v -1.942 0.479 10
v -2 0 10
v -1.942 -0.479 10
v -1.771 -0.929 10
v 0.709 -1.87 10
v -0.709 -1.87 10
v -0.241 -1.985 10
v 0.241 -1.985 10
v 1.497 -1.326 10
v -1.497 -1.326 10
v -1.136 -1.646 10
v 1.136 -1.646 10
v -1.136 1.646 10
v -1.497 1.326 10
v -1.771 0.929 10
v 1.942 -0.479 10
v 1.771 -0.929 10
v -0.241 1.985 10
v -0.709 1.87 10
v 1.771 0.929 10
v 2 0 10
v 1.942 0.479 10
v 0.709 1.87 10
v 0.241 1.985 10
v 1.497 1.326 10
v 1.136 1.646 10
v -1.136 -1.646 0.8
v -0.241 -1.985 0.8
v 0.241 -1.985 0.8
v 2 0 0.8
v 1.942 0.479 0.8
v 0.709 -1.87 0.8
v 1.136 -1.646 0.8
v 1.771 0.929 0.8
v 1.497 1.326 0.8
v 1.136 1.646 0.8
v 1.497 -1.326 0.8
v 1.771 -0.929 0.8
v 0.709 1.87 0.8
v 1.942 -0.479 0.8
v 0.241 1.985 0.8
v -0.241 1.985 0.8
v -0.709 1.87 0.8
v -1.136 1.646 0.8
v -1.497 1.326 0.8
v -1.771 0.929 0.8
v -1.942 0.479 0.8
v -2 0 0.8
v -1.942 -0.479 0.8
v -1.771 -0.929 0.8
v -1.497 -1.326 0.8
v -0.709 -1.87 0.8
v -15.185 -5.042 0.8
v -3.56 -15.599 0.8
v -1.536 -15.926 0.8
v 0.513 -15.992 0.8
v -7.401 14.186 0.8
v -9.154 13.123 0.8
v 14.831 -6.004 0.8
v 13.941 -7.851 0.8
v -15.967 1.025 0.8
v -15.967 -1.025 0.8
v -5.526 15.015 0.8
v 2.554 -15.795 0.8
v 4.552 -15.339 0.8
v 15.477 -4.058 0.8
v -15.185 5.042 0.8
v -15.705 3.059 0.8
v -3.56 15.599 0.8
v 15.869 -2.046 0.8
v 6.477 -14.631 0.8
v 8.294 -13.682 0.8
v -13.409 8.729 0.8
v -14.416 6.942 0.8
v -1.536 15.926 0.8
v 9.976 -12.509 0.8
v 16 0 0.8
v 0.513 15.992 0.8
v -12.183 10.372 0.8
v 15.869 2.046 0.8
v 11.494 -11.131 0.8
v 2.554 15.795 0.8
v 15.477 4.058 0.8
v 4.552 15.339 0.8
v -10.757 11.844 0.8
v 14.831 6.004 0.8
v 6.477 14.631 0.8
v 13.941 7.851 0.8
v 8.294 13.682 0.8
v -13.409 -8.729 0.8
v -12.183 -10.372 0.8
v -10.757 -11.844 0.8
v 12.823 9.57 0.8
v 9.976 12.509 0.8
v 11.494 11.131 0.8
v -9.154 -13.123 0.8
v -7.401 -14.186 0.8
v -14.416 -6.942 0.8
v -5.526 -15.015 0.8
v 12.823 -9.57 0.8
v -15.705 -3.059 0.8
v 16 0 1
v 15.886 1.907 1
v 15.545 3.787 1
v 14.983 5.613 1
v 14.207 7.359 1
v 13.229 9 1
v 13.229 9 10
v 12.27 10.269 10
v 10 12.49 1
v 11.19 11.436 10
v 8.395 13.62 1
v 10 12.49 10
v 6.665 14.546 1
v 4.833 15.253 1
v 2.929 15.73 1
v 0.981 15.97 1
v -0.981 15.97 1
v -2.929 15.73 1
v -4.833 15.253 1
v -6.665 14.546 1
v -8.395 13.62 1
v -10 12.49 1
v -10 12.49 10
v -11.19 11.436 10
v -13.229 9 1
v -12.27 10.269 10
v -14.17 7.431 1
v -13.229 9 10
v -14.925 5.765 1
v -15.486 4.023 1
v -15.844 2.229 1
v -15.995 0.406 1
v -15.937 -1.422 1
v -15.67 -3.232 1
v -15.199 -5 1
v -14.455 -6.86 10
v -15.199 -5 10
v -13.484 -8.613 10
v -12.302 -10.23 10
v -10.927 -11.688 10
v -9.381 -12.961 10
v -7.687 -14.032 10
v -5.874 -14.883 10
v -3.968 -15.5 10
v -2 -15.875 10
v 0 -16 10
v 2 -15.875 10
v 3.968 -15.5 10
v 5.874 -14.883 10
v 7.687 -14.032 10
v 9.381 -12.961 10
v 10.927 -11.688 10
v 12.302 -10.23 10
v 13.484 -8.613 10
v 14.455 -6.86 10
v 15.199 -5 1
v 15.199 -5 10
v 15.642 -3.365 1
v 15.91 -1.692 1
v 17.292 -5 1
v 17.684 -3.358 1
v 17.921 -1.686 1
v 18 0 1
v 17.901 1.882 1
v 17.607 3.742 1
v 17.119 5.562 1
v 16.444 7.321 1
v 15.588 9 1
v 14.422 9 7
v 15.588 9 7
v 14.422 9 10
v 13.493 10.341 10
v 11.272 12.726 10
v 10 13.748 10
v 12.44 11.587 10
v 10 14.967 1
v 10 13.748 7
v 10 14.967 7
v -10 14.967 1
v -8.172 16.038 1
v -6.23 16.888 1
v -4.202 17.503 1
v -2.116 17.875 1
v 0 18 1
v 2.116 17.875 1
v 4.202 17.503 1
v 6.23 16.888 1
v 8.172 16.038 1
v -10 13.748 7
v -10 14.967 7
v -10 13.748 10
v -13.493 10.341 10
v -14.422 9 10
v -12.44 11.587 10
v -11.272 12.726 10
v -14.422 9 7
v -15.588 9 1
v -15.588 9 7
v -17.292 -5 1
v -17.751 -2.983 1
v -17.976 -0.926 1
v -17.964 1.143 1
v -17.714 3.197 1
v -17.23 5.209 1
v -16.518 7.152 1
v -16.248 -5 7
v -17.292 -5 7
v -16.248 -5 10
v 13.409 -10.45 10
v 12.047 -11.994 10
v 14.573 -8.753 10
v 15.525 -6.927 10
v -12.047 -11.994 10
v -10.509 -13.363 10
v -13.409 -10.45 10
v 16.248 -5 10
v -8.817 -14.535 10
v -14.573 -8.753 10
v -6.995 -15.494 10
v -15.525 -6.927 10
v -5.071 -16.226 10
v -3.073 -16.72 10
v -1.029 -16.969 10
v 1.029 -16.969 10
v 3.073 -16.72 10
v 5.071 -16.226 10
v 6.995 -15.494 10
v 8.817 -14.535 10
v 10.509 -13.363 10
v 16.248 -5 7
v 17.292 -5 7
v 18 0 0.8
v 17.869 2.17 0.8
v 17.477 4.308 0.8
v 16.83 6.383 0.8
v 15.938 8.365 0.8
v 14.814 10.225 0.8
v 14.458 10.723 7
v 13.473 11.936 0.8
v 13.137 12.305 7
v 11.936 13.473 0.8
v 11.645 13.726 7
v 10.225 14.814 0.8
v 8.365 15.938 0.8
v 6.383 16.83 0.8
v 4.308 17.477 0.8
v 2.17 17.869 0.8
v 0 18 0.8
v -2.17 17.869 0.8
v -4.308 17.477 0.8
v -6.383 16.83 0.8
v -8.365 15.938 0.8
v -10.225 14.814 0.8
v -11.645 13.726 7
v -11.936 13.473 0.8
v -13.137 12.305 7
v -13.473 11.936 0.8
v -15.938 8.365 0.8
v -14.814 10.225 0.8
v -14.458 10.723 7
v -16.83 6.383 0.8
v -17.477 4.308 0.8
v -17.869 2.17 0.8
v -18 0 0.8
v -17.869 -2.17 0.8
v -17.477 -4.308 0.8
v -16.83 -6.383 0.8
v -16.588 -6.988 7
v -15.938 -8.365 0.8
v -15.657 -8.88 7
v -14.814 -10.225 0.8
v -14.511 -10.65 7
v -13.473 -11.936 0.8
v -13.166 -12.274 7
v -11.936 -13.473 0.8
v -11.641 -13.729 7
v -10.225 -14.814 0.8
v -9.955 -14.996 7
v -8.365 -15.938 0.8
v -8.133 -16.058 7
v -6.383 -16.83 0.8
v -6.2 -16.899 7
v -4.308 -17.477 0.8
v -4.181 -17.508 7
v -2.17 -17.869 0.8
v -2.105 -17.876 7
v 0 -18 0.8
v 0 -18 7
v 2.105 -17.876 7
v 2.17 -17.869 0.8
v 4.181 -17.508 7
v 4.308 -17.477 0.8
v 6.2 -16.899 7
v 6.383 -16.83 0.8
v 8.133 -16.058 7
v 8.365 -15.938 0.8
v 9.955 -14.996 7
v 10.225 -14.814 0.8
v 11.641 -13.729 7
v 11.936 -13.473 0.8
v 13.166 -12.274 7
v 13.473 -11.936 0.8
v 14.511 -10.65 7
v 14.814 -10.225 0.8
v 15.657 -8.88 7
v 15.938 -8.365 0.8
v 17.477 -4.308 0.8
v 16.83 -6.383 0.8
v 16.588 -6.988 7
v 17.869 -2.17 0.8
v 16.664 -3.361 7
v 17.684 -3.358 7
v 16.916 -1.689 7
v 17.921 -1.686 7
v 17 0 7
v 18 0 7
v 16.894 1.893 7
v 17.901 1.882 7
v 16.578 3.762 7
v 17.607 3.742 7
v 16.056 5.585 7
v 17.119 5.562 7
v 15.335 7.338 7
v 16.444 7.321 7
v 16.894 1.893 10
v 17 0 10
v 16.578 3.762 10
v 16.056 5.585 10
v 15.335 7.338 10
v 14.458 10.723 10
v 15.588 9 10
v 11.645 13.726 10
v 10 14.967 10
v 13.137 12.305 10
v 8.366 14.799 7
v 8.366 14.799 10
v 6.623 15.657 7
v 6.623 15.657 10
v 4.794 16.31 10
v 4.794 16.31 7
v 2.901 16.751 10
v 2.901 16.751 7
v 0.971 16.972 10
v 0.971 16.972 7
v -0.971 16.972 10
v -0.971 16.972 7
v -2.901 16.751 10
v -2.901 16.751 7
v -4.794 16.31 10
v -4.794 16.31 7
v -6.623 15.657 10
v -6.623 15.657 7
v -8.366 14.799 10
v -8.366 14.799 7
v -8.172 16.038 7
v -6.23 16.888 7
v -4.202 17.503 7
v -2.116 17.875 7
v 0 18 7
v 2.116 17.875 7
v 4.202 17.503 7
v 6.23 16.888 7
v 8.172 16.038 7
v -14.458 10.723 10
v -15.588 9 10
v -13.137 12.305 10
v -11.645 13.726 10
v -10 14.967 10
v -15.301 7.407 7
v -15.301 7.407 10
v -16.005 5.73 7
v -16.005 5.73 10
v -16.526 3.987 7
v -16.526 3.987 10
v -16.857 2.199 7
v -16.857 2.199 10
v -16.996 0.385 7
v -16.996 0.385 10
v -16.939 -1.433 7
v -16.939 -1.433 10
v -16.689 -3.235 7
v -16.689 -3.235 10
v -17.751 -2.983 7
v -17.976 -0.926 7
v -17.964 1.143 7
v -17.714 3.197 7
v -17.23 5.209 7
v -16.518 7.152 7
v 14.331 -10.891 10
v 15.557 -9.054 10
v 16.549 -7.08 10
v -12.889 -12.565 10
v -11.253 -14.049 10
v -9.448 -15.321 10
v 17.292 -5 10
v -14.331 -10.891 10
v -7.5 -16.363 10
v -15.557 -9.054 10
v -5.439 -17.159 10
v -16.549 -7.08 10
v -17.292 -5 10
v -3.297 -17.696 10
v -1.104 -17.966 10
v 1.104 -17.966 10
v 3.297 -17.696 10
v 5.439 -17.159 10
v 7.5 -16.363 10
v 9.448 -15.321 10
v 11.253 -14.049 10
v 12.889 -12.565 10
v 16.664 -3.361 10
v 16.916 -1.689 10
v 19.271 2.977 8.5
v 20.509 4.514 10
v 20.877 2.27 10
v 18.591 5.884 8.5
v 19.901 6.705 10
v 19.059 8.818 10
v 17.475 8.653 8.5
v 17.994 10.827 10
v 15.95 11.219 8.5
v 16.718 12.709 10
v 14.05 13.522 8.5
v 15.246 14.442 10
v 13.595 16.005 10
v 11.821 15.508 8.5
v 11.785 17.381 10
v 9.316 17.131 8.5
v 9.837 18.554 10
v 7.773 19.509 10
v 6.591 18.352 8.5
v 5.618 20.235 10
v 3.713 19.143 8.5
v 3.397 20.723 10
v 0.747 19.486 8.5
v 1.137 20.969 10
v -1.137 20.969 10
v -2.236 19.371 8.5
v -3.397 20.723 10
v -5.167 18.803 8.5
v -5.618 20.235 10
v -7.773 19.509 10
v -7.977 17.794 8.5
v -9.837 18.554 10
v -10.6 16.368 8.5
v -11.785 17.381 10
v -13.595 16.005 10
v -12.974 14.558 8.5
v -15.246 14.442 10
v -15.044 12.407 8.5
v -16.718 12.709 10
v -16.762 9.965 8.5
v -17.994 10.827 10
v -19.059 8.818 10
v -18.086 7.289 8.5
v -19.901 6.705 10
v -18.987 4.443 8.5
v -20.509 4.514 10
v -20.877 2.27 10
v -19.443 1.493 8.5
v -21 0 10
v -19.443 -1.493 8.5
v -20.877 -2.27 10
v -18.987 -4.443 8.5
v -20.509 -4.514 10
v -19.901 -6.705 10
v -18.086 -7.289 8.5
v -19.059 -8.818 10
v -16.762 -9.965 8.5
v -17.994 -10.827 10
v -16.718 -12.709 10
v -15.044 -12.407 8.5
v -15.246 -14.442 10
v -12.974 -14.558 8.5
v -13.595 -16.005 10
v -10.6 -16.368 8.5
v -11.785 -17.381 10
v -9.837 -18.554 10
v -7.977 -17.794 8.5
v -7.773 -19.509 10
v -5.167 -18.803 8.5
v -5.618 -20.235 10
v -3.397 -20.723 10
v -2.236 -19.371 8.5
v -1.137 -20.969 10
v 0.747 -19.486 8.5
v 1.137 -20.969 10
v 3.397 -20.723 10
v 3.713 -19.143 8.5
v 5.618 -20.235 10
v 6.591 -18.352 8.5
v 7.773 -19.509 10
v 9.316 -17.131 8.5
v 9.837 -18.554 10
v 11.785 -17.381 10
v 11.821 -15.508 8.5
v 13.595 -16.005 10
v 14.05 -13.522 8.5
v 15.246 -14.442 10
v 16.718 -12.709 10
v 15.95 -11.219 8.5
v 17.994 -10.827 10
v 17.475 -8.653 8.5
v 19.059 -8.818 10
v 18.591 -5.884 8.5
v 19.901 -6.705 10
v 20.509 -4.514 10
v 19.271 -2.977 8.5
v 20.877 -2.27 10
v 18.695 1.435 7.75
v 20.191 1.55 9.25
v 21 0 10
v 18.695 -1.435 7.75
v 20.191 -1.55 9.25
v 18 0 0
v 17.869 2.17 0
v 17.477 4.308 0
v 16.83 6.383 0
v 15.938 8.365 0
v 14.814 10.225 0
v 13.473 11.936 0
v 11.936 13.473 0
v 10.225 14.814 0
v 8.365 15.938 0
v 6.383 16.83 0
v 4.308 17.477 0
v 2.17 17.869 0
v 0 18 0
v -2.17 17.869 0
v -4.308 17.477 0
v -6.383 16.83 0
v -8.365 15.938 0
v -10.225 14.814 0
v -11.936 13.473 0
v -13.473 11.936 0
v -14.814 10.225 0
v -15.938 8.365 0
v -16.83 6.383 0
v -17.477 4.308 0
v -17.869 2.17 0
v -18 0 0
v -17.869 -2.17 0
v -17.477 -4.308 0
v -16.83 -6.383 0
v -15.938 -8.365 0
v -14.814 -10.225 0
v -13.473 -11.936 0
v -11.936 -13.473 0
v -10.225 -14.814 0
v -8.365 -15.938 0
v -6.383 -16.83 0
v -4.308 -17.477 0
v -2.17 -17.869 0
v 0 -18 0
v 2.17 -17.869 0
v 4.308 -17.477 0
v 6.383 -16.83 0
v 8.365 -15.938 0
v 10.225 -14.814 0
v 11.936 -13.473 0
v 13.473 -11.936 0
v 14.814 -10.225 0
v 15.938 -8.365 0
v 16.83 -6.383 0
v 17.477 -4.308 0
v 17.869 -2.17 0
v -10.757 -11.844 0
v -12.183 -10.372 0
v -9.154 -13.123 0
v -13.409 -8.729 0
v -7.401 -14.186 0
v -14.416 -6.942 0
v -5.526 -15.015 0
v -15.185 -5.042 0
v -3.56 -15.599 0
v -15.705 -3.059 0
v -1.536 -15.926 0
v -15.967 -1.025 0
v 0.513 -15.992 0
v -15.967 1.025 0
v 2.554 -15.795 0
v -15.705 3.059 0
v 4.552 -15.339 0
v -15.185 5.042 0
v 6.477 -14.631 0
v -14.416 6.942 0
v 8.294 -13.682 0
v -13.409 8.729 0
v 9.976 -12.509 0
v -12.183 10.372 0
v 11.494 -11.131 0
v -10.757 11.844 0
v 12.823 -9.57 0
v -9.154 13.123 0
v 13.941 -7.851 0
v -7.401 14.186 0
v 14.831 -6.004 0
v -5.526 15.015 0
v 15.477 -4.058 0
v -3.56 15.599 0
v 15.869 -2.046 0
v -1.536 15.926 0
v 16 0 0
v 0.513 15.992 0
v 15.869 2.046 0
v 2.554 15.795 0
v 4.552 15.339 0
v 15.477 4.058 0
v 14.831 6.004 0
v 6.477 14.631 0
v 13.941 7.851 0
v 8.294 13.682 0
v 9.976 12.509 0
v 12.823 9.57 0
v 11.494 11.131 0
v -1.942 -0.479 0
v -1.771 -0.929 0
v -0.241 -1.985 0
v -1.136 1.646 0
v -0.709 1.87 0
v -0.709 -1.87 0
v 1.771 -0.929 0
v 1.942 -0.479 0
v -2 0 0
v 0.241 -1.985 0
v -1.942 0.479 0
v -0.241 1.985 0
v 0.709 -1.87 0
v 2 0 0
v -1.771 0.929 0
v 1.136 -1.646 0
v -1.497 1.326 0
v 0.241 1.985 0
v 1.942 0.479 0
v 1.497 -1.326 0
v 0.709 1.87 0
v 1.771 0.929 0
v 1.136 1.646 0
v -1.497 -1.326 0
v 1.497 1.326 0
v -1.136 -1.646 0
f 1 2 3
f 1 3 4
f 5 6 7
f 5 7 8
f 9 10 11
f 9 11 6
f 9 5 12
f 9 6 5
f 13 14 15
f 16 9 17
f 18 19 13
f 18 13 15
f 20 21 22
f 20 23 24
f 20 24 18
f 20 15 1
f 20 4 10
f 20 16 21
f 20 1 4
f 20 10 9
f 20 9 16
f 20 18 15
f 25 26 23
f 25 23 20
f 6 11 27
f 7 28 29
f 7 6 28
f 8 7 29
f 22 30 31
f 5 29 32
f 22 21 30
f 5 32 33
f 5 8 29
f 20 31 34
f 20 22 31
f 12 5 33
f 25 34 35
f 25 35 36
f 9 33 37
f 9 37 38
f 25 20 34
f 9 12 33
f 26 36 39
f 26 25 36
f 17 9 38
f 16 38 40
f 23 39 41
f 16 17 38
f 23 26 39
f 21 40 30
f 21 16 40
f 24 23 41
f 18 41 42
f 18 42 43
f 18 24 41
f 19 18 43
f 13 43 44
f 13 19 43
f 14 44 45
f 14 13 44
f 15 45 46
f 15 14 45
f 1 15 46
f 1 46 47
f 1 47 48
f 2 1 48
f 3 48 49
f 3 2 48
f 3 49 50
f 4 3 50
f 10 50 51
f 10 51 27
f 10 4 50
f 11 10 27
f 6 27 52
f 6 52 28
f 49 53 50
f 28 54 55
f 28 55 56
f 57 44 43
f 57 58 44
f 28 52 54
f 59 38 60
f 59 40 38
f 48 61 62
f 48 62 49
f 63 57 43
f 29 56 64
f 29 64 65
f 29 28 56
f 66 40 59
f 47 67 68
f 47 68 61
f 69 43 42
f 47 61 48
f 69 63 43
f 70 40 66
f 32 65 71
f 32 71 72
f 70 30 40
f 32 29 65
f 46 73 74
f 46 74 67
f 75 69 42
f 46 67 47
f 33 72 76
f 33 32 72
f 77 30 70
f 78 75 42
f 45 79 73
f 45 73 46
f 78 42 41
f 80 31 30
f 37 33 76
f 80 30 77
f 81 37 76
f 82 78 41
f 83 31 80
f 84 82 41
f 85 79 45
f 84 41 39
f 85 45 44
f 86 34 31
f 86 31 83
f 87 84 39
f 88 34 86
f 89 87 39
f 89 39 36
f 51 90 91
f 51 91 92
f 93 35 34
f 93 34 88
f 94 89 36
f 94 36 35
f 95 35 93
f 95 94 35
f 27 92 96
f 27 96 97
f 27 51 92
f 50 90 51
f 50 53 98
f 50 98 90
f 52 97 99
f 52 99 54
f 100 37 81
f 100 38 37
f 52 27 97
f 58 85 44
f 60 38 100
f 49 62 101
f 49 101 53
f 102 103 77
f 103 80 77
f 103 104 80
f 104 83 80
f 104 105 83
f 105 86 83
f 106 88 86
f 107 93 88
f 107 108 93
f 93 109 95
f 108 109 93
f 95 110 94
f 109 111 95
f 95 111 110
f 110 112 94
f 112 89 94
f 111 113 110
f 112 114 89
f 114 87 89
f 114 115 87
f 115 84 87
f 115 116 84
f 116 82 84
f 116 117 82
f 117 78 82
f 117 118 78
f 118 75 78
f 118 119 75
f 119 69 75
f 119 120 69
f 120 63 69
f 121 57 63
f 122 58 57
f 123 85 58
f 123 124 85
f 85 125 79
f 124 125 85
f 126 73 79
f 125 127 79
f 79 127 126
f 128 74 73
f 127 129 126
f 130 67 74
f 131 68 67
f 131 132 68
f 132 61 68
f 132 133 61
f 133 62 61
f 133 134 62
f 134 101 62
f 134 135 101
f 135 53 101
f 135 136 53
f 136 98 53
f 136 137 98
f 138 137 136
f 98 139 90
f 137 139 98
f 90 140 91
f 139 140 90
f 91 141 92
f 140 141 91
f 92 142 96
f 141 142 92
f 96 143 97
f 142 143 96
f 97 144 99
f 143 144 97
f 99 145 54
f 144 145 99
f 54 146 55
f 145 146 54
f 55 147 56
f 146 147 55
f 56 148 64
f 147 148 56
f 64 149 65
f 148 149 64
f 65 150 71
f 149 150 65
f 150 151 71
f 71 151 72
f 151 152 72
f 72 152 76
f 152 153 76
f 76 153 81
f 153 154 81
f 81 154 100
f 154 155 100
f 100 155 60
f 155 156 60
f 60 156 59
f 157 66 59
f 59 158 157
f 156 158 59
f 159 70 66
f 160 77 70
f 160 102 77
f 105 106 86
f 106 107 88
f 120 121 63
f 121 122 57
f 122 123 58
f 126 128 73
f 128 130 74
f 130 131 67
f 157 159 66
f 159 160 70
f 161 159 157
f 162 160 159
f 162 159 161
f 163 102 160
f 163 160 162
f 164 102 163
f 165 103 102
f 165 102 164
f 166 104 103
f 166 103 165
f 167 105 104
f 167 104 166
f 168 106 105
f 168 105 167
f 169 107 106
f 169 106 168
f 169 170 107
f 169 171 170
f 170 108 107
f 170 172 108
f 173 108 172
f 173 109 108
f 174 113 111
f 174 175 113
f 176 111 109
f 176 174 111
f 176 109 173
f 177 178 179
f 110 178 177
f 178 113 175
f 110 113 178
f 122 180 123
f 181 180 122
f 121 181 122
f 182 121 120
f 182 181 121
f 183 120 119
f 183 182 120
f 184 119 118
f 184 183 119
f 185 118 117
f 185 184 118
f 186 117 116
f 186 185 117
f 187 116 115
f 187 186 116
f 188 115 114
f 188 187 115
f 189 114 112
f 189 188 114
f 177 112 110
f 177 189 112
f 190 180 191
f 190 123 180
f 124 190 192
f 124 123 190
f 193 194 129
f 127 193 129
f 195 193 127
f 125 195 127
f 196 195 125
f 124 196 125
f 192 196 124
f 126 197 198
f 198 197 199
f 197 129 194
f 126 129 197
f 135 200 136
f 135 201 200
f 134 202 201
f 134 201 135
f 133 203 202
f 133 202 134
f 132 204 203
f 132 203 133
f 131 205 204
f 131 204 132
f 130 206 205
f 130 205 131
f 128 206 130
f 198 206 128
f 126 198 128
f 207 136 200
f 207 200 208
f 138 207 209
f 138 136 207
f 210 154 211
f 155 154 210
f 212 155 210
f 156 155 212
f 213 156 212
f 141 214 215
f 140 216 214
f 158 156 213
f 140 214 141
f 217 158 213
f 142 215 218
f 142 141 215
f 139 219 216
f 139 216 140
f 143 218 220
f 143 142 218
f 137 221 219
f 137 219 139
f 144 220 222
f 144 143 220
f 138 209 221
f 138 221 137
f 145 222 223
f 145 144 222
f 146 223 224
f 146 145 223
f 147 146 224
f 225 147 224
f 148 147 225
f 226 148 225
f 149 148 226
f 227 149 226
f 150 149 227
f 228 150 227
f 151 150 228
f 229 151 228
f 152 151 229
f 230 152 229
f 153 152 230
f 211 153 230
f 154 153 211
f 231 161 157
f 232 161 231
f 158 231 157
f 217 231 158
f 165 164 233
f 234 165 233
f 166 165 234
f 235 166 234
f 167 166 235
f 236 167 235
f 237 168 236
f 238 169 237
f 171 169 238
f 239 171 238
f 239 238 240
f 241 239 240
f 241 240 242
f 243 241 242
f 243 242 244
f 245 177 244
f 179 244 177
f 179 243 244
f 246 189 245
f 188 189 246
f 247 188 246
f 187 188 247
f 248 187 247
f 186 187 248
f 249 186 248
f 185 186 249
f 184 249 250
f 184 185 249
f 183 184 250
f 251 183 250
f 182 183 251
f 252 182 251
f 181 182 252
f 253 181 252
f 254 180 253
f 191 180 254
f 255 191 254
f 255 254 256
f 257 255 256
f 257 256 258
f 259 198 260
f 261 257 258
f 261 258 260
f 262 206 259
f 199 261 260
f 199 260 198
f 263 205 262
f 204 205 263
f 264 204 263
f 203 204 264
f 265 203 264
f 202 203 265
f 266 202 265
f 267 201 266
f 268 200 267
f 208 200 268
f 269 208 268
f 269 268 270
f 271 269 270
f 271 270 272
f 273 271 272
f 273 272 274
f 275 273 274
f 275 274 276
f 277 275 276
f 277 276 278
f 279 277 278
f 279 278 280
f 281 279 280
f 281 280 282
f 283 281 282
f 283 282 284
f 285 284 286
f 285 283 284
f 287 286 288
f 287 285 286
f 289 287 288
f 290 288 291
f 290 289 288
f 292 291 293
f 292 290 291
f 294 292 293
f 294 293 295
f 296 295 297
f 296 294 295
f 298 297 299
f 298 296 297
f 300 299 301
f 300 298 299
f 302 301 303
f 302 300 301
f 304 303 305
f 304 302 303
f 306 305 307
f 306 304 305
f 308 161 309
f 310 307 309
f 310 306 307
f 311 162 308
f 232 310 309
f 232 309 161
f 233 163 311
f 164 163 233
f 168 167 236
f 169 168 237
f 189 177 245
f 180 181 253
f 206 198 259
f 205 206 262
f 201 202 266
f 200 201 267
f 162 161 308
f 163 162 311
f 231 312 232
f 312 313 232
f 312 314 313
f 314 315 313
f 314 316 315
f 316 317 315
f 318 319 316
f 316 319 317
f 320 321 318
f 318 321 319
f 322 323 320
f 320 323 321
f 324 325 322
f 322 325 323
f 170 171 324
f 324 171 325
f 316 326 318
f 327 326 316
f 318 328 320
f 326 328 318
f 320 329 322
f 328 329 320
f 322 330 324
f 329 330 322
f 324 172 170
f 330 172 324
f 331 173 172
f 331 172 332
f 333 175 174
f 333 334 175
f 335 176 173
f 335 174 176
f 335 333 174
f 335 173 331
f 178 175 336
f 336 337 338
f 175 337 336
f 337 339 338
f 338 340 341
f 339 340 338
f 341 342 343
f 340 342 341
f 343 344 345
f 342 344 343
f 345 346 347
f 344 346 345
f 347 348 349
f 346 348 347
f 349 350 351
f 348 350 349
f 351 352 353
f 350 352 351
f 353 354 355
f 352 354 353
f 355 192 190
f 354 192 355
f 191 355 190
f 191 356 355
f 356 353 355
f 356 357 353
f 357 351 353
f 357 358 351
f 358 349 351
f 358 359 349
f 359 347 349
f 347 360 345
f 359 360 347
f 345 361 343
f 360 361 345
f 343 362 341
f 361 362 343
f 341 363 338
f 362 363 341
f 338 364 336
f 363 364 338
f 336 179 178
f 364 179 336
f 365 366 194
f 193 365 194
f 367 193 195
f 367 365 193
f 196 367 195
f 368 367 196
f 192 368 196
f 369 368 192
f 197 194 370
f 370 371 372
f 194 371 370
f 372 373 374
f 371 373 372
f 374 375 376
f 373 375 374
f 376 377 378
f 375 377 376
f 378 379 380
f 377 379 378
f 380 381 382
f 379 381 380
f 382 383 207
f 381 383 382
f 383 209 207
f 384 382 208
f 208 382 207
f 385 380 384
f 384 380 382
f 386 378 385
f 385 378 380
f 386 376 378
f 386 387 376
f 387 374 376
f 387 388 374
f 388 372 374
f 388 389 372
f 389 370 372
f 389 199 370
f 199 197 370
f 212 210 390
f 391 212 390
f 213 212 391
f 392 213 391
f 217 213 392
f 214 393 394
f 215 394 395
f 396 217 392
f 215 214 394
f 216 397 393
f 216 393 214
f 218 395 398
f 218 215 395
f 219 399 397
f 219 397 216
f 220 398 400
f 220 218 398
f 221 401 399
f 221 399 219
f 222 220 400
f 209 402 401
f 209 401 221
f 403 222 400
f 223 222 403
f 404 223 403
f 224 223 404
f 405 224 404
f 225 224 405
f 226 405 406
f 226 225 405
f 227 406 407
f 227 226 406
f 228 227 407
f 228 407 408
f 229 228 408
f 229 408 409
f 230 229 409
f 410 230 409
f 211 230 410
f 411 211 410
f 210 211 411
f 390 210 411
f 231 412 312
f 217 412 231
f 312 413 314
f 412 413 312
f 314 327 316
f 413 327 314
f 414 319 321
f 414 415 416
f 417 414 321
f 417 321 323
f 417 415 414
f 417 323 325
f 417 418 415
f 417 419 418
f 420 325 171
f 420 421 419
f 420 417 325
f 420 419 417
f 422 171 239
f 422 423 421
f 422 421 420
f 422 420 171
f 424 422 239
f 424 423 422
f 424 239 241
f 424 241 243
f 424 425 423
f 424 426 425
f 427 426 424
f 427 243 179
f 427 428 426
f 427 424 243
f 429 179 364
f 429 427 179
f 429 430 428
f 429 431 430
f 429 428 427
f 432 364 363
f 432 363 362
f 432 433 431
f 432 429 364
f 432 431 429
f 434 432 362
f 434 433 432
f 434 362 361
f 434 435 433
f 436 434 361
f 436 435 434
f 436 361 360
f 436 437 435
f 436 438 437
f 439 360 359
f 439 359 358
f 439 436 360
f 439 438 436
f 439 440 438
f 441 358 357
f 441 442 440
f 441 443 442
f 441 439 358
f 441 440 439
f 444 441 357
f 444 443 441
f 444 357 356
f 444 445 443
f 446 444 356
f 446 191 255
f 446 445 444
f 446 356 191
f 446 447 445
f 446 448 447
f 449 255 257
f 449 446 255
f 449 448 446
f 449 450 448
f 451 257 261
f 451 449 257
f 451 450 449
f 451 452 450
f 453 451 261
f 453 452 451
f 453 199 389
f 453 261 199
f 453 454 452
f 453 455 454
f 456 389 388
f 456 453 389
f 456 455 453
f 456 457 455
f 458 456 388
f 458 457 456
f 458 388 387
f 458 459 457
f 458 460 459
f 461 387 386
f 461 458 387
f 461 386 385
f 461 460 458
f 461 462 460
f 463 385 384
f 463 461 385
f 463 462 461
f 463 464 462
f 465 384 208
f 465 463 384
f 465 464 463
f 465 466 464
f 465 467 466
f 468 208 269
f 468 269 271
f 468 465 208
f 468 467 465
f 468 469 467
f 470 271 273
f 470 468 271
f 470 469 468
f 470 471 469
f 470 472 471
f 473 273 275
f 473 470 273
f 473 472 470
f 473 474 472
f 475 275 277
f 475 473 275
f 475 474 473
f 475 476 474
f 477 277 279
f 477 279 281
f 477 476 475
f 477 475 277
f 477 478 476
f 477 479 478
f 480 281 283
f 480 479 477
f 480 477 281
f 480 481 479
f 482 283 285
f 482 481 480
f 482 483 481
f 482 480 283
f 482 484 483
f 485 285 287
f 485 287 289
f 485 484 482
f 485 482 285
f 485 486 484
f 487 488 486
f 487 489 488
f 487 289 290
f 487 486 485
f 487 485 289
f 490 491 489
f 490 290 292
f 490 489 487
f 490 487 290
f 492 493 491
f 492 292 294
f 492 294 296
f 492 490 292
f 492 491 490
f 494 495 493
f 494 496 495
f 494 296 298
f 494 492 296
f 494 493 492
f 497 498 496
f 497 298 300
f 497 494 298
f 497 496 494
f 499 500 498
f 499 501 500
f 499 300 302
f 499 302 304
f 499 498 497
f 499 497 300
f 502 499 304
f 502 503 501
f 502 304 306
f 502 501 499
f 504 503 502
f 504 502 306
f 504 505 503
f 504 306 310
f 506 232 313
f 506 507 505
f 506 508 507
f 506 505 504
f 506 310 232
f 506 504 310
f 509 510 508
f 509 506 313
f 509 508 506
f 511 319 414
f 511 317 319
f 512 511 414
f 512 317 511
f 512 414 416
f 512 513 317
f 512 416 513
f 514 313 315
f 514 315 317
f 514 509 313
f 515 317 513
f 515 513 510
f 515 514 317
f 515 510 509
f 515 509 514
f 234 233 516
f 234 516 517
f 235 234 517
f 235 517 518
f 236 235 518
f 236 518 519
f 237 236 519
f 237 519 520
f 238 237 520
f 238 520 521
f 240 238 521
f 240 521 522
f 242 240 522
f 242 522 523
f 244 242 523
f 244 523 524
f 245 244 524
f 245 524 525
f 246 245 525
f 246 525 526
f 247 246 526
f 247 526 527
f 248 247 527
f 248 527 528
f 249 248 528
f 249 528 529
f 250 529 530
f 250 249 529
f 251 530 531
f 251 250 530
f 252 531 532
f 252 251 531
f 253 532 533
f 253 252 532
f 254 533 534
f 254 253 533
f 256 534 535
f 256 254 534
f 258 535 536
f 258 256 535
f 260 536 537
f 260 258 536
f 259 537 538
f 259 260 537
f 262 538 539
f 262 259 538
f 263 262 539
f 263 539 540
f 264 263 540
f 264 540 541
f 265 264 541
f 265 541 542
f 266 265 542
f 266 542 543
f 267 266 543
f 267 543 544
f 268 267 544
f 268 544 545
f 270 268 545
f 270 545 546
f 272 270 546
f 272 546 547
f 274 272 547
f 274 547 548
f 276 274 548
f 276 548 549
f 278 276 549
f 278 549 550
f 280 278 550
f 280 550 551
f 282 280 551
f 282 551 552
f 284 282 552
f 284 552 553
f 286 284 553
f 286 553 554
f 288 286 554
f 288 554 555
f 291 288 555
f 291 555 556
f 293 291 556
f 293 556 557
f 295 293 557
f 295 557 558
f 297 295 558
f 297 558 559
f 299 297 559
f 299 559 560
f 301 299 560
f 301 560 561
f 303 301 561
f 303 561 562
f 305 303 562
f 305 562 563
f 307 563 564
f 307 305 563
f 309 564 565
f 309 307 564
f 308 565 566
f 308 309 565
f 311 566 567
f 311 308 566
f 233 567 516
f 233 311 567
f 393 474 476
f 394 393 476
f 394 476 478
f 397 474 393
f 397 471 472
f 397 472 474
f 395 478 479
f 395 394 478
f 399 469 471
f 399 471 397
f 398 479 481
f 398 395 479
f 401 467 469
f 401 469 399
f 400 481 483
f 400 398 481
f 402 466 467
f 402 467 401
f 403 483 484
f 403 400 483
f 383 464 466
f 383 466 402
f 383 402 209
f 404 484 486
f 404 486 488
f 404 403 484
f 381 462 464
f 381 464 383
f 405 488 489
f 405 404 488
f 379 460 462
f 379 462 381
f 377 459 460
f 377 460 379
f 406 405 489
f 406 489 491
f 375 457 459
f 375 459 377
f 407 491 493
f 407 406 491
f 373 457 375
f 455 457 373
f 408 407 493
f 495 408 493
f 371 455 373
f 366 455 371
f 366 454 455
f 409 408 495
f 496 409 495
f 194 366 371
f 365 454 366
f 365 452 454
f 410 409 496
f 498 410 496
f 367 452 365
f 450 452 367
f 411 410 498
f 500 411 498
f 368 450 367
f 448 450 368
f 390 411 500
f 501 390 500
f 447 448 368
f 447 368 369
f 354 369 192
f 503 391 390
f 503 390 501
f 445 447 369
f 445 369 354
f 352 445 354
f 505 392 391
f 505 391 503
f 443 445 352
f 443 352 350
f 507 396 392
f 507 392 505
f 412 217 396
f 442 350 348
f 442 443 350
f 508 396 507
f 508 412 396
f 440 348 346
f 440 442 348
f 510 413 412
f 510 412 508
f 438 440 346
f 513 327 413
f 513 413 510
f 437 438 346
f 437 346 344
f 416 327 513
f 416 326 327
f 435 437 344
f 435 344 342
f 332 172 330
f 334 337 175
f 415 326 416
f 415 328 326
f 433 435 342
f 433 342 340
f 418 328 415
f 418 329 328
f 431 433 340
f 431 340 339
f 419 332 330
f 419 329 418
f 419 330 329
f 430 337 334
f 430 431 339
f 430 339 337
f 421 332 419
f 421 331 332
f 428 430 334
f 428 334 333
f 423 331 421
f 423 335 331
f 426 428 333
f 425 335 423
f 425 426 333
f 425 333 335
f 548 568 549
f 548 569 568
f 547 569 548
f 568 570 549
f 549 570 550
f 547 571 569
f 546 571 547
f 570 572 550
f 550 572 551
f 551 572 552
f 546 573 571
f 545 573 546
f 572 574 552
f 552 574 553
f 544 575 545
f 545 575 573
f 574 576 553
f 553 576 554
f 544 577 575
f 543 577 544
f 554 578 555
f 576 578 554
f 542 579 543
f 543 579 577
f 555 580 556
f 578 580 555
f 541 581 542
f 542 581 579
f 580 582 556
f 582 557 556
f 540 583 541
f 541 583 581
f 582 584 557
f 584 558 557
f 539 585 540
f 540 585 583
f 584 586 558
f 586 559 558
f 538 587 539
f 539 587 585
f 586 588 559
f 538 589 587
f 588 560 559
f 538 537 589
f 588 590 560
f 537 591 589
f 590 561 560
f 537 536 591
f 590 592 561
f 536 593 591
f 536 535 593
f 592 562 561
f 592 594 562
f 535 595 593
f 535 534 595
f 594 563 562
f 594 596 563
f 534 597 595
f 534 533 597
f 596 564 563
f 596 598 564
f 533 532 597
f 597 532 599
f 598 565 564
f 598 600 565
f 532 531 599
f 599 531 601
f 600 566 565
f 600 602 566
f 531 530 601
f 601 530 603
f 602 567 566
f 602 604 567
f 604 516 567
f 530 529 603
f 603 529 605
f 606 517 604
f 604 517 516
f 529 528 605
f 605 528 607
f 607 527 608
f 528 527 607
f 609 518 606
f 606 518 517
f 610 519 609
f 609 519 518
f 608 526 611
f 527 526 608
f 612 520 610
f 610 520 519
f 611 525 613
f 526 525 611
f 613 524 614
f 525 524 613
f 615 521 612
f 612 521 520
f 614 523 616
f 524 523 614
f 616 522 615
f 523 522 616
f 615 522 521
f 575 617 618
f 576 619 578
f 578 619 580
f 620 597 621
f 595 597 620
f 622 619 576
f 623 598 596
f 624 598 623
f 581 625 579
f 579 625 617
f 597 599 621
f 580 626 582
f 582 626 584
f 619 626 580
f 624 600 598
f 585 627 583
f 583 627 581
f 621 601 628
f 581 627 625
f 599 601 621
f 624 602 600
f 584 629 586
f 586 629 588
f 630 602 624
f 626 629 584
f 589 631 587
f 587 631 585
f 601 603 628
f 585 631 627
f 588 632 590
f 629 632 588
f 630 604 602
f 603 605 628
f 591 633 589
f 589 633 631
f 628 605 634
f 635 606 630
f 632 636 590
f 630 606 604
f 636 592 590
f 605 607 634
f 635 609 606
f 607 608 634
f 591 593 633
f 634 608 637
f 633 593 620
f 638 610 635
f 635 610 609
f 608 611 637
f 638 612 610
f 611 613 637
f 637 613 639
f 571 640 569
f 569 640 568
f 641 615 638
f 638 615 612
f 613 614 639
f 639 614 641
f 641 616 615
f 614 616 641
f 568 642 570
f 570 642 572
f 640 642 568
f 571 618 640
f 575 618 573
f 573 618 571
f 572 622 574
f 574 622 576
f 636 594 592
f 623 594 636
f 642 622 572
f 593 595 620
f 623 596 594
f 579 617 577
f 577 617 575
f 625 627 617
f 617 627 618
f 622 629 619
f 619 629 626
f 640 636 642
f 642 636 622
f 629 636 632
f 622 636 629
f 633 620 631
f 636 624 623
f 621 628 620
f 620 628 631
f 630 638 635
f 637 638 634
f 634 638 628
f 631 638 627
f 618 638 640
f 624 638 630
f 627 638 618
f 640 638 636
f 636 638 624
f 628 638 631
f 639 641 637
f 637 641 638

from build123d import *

# Parameters (mm, degrees)
BOX_W             = 20
BOX_H             = 14
BOX_DEPTH         = 10
BOX001_W          = 44
BOX001_H          = 14
BOX001_DEPTH      = 10
CYLINDER_R        = 18
CYLINDER_DEPTH    = 0.8
CYLINDER002_R     = 16
CYLINDER002_DEPTH = 11
CYLINDER001_R     = 18
CYLINDER001_DEPTH = 10
CYLINDER003_R     = 17
CYLINDER003_DEPTH = 5
CYLINDER004_R     = 2
CYLINDER004_DEPTH = 10


with BuildPart() as cube:
    # Box → Box (new body)
    with BuildSketch(Plane(origin=(-10, 8, 1), x_dir=(1, 0, 0), z_dir=(0, 0, 1))):
        with Locations((10, 7)):
            Rectangle(BOX_W, BOX_H)
    extrude(amount=BOX_DEPTH)


with BuildPart() as cuts:
    # Box001 → Box001 (new body)
    with BuildSketch(Plane(origin=(-22, -5, 1), x_dir=(1, 0, 0), z_dir=(0, 0, 1))):
        with Locations((22, 7)):
            Rectangle(BOX001_W, BOX001_H)
    extrude(amount=BOX001_DEPTH)

    # Fusion: union Cube
    add(cube.part)


with BuildPart() as top:
    # Cylinder → Cylinder (new body)
    with BuildSketch(Plane.XY):
        Circle(CYLINDER_R)
    extrude(amount=CYLINDER_DEPTH)


with BuildPart() as hole:
    # Cylinder002 → Cylinder002 (new body)
    with BuildSketch(Plane.XY):
        Circle(CYLINDER002_R)
    extrude(amount=CYLINDER002_DEPTH)


with BuildPart() as cut001:
    # Cylinder001 → Cylinder001 (new body)
    with BuildSketch(Plane.XY):
        Circle(CYLINDER001_R)
    extrude(amount=CYLINDER001_DEPTH)

    # Cut: cut hole
    add(hole.part, mode=Mode.SUBTRACT)

    # Fusion001: union top
    add(top.part)

    # Cut001: cut cuts
    add(cuts.part, mode=Mode.SUBTRACT)


with BuildPart() as hole001:
    # Cylinder003 → Cylinder003 (new body)
    with BuildSketch(Plane.XY.offset(7)):
        Circle(CYLINDER003_R)
    extrude(amount=CYLINDER003_DEPTH)


with BuildPart() as cut002:
    # Cone → Cone (revolve)
    with BuildSketch(Plane(origin=(0, 0, 7), x_dir=(1, 0, 0), z_dir=(0, -1, 0))):
        Polygon((0, 0), (18, 0), (21, 3), (0, 3), align=None)
    revolve(axis=Axis((0, 0, 7), (0, 0, 1)))

    # Cut002: cut hole001
    add(hole001.part, mode=Mode.SUBTRACT)


with BuildPart() as fusion002:
    # Cylinder004 → Cylinder004 (new body)
    with BuildSketch(Plane.XY):
        Circle(CYLINDER004_R)
    extrude(amount=CYLINDER004_DEPTH)

    # Fusion002: union Cut001, Cut002
    add(cut001.part)
    add(cut002.part)


solid = fusion002.part
